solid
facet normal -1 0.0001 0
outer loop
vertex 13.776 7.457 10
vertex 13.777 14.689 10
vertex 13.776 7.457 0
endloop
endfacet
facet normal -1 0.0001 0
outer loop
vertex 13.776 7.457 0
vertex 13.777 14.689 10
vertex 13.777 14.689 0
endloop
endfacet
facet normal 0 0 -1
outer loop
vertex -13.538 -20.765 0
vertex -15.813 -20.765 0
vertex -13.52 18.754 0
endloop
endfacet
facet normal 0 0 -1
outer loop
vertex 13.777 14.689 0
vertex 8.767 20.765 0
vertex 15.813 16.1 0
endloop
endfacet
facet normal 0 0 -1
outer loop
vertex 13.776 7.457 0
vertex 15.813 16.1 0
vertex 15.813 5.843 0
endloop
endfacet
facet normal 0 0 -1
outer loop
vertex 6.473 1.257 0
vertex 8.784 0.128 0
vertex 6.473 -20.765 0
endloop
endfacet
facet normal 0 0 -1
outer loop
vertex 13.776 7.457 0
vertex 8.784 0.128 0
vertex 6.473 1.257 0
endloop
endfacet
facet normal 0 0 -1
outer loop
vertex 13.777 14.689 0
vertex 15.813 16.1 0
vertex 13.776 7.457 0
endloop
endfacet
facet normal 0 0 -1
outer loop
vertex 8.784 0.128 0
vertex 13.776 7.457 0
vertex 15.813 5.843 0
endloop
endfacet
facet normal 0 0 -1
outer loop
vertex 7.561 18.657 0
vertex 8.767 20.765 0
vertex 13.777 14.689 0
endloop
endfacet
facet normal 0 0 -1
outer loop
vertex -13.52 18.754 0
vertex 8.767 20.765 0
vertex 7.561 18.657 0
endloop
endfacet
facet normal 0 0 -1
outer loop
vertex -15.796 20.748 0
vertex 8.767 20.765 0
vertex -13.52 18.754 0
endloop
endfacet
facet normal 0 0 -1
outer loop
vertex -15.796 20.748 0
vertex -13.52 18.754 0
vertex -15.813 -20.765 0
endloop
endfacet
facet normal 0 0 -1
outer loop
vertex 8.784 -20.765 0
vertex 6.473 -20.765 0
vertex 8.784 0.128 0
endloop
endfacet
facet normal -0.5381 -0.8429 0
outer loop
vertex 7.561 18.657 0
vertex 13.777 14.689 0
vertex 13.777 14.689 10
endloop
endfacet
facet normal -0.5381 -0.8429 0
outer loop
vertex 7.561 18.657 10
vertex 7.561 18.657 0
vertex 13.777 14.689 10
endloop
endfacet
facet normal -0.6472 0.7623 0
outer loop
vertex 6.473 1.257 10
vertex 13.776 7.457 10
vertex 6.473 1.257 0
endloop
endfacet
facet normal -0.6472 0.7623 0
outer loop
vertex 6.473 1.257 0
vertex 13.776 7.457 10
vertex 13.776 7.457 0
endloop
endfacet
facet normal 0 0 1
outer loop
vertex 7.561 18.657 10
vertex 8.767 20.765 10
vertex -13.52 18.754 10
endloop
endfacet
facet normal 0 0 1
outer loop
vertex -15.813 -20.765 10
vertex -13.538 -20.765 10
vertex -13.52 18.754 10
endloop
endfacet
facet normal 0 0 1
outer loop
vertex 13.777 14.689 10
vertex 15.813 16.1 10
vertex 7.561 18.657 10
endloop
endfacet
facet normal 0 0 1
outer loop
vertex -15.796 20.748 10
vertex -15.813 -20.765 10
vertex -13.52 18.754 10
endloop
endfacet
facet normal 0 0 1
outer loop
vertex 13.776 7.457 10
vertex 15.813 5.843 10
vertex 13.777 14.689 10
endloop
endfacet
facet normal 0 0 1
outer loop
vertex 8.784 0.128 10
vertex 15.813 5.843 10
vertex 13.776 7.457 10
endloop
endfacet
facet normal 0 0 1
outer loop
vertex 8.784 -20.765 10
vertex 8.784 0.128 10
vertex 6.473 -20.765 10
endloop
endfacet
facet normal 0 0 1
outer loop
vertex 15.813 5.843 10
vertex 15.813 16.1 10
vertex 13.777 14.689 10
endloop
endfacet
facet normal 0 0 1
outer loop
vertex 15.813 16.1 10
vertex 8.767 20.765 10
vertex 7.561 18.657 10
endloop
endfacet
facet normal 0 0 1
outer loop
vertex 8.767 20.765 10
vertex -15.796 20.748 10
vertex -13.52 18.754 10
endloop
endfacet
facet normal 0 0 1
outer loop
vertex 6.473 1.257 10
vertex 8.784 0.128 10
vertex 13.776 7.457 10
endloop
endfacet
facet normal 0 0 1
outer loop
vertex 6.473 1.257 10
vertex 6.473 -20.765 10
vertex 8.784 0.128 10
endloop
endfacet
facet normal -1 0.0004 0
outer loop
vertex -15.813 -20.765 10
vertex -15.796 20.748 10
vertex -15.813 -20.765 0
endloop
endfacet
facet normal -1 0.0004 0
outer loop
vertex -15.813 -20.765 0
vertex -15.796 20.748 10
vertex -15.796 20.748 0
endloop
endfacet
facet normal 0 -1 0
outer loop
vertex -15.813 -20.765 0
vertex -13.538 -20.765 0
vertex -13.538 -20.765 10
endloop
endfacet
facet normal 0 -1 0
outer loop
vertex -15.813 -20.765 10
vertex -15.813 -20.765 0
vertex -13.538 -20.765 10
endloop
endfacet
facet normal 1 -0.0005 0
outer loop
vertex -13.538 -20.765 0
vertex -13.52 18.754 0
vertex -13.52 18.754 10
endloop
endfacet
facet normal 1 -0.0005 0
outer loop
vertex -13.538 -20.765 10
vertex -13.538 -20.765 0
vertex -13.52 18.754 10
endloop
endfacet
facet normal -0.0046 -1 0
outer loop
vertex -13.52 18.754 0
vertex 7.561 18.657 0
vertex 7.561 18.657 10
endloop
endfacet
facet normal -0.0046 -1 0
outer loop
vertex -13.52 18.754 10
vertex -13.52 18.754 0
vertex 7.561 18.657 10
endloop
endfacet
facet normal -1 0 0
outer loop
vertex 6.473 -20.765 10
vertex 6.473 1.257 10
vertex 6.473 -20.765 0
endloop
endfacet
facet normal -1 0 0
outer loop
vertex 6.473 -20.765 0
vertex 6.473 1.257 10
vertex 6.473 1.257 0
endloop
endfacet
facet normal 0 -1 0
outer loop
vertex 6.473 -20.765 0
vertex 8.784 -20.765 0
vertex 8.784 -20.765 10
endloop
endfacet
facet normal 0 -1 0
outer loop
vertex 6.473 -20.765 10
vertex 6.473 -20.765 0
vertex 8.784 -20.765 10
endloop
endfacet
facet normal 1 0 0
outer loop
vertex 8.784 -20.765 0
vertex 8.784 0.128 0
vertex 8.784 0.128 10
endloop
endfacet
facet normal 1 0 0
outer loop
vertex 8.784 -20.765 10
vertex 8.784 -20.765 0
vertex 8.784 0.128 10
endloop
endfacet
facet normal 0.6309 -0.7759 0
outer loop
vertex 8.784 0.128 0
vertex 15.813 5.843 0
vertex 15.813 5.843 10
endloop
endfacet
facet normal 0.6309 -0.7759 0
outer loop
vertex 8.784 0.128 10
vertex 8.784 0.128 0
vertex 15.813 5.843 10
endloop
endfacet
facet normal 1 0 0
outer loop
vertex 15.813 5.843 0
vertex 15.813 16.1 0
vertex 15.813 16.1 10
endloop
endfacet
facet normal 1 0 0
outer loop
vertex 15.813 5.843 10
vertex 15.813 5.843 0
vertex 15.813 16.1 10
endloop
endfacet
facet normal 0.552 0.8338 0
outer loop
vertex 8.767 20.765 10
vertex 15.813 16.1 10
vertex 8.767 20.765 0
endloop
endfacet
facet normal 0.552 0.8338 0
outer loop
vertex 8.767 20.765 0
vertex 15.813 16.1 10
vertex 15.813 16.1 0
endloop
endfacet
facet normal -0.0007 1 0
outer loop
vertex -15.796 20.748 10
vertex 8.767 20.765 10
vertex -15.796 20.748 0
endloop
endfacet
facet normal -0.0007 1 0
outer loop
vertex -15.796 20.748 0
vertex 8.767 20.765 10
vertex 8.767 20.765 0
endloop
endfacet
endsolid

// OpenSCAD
fudge = 0.1;

module poly_path3752(h)
{
  scale([25.4/90, -25.4/90, 1]) union()
  {
    linear_extrude(height=h)
      polygon([[31.062730,-73.578125],[-55.968520,-73.515625],[-56.031020,73.578125],[-47.968520,73.578125],[-47.906020,-66.453125],[26.789570,-66.105565],[48.815270,-52.048625],[48.812270,-26.421875],[22.937270,-4.453125],[22.937270,73.578125],[31.124770,73.578125],[31.124770,-0.453125],[56.031020,-20.703125],[56.031020,-57.046875]]);
  }
}

poly_path3752(10);
